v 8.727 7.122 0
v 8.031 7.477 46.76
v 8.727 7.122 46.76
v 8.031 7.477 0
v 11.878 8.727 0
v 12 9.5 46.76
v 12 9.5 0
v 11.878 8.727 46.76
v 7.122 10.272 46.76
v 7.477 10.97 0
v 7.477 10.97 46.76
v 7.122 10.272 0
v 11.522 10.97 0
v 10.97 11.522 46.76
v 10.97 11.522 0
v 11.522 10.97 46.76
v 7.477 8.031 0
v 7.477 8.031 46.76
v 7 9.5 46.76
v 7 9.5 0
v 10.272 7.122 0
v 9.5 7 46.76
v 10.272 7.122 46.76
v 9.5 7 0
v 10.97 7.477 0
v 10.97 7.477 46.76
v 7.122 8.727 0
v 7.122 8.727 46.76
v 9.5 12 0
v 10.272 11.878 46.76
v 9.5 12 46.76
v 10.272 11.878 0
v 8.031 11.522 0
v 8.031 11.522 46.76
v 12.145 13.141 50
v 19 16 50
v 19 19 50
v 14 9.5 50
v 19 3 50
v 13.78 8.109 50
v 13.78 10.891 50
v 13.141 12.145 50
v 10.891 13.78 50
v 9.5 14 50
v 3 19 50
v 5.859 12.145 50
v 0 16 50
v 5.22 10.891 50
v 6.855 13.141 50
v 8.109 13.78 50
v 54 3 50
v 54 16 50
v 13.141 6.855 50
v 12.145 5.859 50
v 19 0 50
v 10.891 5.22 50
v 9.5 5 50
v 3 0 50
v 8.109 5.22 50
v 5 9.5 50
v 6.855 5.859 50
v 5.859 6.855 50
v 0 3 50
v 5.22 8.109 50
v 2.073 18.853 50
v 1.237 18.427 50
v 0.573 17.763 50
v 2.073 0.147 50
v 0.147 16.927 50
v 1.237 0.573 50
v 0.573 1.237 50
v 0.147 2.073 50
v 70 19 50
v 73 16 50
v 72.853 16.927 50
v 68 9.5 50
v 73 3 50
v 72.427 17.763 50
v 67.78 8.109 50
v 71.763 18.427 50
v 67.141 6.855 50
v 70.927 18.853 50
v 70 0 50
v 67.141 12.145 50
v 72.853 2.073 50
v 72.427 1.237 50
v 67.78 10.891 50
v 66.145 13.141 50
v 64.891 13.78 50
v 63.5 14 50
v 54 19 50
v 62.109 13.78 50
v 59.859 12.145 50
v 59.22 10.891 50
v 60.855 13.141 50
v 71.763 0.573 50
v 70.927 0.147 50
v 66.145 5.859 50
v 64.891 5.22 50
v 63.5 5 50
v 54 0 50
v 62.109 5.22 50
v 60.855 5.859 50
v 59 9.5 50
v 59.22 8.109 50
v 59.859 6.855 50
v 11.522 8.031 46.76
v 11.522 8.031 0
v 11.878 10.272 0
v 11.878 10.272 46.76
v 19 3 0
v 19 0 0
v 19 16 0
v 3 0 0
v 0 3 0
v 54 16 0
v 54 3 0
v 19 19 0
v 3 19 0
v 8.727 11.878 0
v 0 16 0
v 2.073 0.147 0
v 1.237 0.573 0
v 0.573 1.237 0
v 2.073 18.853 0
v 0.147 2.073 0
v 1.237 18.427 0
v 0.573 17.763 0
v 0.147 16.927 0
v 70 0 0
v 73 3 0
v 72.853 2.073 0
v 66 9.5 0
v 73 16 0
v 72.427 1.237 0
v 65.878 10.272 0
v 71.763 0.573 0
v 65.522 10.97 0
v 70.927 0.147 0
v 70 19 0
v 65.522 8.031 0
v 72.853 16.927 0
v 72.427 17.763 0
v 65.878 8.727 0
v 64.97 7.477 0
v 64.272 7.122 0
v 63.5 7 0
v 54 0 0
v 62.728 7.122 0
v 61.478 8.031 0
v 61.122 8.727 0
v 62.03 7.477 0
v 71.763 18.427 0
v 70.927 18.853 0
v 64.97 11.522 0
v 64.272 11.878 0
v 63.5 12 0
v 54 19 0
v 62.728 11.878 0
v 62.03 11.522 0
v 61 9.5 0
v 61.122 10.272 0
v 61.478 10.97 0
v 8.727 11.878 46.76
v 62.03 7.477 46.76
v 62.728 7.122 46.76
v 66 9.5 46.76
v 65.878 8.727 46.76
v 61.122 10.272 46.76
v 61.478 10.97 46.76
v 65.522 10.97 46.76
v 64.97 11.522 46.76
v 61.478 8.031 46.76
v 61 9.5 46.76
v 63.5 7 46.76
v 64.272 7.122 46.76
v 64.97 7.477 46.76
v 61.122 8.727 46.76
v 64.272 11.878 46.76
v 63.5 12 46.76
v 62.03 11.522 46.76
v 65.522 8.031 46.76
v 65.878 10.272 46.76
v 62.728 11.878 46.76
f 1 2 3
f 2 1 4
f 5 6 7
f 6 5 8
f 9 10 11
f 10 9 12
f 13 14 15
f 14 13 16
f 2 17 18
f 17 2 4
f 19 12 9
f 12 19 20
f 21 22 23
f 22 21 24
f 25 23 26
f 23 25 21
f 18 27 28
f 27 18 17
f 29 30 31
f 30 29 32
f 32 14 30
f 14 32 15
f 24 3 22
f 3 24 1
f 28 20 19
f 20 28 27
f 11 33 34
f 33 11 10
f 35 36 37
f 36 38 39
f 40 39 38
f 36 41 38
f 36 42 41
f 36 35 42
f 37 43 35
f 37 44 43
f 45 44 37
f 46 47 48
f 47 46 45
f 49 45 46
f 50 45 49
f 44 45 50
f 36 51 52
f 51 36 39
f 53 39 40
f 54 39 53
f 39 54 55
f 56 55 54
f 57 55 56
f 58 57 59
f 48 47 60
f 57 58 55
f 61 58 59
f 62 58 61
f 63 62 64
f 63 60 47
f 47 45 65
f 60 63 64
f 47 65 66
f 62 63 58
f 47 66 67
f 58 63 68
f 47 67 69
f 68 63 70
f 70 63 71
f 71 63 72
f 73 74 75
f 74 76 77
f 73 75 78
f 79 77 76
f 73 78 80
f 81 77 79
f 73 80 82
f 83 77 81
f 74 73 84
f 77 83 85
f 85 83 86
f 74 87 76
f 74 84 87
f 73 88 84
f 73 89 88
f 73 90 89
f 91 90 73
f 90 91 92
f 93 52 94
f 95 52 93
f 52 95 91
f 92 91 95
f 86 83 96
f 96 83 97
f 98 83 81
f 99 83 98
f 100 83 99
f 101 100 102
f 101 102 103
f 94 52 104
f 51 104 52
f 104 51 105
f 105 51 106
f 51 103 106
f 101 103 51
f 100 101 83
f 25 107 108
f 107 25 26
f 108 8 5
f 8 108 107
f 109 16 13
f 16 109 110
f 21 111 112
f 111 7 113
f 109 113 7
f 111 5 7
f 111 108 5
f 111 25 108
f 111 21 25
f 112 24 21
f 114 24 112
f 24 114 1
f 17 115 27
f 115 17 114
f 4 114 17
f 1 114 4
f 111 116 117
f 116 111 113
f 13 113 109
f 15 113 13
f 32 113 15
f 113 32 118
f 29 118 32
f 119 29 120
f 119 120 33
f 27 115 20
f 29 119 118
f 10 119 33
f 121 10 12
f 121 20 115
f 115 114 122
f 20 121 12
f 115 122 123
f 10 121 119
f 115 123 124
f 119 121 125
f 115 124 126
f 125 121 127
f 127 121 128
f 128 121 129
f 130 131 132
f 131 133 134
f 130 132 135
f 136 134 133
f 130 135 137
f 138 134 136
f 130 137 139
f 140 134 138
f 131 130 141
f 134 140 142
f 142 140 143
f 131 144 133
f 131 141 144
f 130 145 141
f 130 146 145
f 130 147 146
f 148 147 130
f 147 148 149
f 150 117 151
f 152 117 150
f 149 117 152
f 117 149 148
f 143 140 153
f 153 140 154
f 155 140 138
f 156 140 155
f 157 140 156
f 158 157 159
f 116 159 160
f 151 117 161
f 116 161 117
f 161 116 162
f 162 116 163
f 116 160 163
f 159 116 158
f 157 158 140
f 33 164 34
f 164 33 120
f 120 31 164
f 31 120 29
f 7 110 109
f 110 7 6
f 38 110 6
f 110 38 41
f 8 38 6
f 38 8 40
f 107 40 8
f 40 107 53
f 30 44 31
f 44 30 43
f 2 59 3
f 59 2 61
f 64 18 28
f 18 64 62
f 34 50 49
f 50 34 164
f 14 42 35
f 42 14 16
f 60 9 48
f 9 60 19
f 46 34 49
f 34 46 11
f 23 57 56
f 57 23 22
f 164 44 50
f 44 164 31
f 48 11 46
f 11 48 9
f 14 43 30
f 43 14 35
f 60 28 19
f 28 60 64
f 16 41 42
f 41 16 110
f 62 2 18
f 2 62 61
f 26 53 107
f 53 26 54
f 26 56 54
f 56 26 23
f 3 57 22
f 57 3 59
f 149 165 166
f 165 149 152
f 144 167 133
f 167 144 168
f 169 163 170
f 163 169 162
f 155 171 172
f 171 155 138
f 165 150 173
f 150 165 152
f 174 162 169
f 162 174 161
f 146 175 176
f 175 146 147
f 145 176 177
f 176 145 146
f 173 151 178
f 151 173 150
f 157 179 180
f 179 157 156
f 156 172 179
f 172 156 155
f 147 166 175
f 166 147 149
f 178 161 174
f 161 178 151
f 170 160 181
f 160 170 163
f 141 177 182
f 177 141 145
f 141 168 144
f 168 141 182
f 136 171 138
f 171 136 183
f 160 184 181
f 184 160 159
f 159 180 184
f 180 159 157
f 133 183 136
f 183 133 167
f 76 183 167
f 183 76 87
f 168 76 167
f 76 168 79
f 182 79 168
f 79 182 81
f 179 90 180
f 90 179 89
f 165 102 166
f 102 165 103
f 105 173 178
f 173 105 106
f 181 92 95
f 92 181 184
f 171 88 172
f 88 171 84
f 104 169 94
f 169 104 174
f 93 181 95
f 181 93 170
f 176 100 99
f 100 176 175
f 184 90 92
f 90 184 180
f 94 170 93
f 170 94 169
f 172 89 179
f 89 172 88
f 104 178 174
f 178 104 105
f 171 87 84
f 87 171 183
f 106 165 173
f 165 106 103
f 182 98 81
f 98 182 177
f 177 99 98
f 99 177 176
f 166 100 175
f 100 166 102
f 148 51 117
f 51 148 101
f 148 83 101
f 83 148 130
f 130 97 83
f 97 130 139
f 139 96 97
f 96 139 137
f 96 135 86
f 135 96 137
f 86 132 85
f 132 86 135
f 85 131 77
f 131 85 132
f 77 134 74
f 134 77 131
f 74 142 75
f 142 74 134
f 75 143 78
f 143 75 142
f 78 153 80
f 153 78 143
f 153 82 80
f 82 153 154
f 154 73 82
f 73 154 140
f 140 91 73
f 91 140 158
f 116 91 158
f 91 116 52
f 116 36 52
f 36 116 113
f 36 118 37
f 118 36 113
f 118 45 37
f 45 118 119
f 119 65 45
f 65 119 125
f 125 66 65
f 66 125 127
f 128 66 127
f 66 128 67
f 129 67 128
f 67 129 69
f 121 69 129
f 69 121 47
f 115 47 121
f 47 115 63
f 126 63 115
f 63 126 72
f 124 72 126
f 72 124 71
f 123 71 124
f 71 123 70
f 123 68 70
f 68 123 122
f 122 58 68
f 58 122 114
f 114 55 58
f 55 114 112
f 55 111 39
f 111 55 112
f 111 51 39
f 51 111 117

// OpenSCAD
$fn = 20;


difference() {
	linear_extrude(height = 50) {
		difference() {
			minkowski() {
				square(size = [67.0000000000, 13.0000000000]);
				translate(v = [3, 3, 0]) {
					circle(r = 3);
				}
			}
			translate(v = [19.0000000000, 0]) {
				square(size = [35, 3]);
			}
			translate(v = [19.0000000000, 16.0000000000]) {
				square(size = [35, 3]);
			}
		}
	}
	translate(v = [9.5000000000, 9.5000000000, 0]) {
		union() {
			linear_extrude(height = 50) {
				circle(r = 2.5000000000);
			}
			translate(v = [0, 0, 50]) {
				translate(v = [0, 0, -7.2889883574]) {
					cylinder(h = 7.2889883574, r1 = 0, r2 = 4.5000000000);
				}
			}
		}
	}
	translate(v = [63.5000000000, 9.5000000000, 0]) {
		union() {
			linear_extrude(height = 50) {
				circle(r = 2.5000000000);
			}
			translate(v = [0, 0, 50]) {
				translate(v = [0, 0, -7.2889883574]) {
					cylinder(h = 7.2889883574, r1 = 0, r2 = 4.5000000000);
				}
			}
		}
	}
}
